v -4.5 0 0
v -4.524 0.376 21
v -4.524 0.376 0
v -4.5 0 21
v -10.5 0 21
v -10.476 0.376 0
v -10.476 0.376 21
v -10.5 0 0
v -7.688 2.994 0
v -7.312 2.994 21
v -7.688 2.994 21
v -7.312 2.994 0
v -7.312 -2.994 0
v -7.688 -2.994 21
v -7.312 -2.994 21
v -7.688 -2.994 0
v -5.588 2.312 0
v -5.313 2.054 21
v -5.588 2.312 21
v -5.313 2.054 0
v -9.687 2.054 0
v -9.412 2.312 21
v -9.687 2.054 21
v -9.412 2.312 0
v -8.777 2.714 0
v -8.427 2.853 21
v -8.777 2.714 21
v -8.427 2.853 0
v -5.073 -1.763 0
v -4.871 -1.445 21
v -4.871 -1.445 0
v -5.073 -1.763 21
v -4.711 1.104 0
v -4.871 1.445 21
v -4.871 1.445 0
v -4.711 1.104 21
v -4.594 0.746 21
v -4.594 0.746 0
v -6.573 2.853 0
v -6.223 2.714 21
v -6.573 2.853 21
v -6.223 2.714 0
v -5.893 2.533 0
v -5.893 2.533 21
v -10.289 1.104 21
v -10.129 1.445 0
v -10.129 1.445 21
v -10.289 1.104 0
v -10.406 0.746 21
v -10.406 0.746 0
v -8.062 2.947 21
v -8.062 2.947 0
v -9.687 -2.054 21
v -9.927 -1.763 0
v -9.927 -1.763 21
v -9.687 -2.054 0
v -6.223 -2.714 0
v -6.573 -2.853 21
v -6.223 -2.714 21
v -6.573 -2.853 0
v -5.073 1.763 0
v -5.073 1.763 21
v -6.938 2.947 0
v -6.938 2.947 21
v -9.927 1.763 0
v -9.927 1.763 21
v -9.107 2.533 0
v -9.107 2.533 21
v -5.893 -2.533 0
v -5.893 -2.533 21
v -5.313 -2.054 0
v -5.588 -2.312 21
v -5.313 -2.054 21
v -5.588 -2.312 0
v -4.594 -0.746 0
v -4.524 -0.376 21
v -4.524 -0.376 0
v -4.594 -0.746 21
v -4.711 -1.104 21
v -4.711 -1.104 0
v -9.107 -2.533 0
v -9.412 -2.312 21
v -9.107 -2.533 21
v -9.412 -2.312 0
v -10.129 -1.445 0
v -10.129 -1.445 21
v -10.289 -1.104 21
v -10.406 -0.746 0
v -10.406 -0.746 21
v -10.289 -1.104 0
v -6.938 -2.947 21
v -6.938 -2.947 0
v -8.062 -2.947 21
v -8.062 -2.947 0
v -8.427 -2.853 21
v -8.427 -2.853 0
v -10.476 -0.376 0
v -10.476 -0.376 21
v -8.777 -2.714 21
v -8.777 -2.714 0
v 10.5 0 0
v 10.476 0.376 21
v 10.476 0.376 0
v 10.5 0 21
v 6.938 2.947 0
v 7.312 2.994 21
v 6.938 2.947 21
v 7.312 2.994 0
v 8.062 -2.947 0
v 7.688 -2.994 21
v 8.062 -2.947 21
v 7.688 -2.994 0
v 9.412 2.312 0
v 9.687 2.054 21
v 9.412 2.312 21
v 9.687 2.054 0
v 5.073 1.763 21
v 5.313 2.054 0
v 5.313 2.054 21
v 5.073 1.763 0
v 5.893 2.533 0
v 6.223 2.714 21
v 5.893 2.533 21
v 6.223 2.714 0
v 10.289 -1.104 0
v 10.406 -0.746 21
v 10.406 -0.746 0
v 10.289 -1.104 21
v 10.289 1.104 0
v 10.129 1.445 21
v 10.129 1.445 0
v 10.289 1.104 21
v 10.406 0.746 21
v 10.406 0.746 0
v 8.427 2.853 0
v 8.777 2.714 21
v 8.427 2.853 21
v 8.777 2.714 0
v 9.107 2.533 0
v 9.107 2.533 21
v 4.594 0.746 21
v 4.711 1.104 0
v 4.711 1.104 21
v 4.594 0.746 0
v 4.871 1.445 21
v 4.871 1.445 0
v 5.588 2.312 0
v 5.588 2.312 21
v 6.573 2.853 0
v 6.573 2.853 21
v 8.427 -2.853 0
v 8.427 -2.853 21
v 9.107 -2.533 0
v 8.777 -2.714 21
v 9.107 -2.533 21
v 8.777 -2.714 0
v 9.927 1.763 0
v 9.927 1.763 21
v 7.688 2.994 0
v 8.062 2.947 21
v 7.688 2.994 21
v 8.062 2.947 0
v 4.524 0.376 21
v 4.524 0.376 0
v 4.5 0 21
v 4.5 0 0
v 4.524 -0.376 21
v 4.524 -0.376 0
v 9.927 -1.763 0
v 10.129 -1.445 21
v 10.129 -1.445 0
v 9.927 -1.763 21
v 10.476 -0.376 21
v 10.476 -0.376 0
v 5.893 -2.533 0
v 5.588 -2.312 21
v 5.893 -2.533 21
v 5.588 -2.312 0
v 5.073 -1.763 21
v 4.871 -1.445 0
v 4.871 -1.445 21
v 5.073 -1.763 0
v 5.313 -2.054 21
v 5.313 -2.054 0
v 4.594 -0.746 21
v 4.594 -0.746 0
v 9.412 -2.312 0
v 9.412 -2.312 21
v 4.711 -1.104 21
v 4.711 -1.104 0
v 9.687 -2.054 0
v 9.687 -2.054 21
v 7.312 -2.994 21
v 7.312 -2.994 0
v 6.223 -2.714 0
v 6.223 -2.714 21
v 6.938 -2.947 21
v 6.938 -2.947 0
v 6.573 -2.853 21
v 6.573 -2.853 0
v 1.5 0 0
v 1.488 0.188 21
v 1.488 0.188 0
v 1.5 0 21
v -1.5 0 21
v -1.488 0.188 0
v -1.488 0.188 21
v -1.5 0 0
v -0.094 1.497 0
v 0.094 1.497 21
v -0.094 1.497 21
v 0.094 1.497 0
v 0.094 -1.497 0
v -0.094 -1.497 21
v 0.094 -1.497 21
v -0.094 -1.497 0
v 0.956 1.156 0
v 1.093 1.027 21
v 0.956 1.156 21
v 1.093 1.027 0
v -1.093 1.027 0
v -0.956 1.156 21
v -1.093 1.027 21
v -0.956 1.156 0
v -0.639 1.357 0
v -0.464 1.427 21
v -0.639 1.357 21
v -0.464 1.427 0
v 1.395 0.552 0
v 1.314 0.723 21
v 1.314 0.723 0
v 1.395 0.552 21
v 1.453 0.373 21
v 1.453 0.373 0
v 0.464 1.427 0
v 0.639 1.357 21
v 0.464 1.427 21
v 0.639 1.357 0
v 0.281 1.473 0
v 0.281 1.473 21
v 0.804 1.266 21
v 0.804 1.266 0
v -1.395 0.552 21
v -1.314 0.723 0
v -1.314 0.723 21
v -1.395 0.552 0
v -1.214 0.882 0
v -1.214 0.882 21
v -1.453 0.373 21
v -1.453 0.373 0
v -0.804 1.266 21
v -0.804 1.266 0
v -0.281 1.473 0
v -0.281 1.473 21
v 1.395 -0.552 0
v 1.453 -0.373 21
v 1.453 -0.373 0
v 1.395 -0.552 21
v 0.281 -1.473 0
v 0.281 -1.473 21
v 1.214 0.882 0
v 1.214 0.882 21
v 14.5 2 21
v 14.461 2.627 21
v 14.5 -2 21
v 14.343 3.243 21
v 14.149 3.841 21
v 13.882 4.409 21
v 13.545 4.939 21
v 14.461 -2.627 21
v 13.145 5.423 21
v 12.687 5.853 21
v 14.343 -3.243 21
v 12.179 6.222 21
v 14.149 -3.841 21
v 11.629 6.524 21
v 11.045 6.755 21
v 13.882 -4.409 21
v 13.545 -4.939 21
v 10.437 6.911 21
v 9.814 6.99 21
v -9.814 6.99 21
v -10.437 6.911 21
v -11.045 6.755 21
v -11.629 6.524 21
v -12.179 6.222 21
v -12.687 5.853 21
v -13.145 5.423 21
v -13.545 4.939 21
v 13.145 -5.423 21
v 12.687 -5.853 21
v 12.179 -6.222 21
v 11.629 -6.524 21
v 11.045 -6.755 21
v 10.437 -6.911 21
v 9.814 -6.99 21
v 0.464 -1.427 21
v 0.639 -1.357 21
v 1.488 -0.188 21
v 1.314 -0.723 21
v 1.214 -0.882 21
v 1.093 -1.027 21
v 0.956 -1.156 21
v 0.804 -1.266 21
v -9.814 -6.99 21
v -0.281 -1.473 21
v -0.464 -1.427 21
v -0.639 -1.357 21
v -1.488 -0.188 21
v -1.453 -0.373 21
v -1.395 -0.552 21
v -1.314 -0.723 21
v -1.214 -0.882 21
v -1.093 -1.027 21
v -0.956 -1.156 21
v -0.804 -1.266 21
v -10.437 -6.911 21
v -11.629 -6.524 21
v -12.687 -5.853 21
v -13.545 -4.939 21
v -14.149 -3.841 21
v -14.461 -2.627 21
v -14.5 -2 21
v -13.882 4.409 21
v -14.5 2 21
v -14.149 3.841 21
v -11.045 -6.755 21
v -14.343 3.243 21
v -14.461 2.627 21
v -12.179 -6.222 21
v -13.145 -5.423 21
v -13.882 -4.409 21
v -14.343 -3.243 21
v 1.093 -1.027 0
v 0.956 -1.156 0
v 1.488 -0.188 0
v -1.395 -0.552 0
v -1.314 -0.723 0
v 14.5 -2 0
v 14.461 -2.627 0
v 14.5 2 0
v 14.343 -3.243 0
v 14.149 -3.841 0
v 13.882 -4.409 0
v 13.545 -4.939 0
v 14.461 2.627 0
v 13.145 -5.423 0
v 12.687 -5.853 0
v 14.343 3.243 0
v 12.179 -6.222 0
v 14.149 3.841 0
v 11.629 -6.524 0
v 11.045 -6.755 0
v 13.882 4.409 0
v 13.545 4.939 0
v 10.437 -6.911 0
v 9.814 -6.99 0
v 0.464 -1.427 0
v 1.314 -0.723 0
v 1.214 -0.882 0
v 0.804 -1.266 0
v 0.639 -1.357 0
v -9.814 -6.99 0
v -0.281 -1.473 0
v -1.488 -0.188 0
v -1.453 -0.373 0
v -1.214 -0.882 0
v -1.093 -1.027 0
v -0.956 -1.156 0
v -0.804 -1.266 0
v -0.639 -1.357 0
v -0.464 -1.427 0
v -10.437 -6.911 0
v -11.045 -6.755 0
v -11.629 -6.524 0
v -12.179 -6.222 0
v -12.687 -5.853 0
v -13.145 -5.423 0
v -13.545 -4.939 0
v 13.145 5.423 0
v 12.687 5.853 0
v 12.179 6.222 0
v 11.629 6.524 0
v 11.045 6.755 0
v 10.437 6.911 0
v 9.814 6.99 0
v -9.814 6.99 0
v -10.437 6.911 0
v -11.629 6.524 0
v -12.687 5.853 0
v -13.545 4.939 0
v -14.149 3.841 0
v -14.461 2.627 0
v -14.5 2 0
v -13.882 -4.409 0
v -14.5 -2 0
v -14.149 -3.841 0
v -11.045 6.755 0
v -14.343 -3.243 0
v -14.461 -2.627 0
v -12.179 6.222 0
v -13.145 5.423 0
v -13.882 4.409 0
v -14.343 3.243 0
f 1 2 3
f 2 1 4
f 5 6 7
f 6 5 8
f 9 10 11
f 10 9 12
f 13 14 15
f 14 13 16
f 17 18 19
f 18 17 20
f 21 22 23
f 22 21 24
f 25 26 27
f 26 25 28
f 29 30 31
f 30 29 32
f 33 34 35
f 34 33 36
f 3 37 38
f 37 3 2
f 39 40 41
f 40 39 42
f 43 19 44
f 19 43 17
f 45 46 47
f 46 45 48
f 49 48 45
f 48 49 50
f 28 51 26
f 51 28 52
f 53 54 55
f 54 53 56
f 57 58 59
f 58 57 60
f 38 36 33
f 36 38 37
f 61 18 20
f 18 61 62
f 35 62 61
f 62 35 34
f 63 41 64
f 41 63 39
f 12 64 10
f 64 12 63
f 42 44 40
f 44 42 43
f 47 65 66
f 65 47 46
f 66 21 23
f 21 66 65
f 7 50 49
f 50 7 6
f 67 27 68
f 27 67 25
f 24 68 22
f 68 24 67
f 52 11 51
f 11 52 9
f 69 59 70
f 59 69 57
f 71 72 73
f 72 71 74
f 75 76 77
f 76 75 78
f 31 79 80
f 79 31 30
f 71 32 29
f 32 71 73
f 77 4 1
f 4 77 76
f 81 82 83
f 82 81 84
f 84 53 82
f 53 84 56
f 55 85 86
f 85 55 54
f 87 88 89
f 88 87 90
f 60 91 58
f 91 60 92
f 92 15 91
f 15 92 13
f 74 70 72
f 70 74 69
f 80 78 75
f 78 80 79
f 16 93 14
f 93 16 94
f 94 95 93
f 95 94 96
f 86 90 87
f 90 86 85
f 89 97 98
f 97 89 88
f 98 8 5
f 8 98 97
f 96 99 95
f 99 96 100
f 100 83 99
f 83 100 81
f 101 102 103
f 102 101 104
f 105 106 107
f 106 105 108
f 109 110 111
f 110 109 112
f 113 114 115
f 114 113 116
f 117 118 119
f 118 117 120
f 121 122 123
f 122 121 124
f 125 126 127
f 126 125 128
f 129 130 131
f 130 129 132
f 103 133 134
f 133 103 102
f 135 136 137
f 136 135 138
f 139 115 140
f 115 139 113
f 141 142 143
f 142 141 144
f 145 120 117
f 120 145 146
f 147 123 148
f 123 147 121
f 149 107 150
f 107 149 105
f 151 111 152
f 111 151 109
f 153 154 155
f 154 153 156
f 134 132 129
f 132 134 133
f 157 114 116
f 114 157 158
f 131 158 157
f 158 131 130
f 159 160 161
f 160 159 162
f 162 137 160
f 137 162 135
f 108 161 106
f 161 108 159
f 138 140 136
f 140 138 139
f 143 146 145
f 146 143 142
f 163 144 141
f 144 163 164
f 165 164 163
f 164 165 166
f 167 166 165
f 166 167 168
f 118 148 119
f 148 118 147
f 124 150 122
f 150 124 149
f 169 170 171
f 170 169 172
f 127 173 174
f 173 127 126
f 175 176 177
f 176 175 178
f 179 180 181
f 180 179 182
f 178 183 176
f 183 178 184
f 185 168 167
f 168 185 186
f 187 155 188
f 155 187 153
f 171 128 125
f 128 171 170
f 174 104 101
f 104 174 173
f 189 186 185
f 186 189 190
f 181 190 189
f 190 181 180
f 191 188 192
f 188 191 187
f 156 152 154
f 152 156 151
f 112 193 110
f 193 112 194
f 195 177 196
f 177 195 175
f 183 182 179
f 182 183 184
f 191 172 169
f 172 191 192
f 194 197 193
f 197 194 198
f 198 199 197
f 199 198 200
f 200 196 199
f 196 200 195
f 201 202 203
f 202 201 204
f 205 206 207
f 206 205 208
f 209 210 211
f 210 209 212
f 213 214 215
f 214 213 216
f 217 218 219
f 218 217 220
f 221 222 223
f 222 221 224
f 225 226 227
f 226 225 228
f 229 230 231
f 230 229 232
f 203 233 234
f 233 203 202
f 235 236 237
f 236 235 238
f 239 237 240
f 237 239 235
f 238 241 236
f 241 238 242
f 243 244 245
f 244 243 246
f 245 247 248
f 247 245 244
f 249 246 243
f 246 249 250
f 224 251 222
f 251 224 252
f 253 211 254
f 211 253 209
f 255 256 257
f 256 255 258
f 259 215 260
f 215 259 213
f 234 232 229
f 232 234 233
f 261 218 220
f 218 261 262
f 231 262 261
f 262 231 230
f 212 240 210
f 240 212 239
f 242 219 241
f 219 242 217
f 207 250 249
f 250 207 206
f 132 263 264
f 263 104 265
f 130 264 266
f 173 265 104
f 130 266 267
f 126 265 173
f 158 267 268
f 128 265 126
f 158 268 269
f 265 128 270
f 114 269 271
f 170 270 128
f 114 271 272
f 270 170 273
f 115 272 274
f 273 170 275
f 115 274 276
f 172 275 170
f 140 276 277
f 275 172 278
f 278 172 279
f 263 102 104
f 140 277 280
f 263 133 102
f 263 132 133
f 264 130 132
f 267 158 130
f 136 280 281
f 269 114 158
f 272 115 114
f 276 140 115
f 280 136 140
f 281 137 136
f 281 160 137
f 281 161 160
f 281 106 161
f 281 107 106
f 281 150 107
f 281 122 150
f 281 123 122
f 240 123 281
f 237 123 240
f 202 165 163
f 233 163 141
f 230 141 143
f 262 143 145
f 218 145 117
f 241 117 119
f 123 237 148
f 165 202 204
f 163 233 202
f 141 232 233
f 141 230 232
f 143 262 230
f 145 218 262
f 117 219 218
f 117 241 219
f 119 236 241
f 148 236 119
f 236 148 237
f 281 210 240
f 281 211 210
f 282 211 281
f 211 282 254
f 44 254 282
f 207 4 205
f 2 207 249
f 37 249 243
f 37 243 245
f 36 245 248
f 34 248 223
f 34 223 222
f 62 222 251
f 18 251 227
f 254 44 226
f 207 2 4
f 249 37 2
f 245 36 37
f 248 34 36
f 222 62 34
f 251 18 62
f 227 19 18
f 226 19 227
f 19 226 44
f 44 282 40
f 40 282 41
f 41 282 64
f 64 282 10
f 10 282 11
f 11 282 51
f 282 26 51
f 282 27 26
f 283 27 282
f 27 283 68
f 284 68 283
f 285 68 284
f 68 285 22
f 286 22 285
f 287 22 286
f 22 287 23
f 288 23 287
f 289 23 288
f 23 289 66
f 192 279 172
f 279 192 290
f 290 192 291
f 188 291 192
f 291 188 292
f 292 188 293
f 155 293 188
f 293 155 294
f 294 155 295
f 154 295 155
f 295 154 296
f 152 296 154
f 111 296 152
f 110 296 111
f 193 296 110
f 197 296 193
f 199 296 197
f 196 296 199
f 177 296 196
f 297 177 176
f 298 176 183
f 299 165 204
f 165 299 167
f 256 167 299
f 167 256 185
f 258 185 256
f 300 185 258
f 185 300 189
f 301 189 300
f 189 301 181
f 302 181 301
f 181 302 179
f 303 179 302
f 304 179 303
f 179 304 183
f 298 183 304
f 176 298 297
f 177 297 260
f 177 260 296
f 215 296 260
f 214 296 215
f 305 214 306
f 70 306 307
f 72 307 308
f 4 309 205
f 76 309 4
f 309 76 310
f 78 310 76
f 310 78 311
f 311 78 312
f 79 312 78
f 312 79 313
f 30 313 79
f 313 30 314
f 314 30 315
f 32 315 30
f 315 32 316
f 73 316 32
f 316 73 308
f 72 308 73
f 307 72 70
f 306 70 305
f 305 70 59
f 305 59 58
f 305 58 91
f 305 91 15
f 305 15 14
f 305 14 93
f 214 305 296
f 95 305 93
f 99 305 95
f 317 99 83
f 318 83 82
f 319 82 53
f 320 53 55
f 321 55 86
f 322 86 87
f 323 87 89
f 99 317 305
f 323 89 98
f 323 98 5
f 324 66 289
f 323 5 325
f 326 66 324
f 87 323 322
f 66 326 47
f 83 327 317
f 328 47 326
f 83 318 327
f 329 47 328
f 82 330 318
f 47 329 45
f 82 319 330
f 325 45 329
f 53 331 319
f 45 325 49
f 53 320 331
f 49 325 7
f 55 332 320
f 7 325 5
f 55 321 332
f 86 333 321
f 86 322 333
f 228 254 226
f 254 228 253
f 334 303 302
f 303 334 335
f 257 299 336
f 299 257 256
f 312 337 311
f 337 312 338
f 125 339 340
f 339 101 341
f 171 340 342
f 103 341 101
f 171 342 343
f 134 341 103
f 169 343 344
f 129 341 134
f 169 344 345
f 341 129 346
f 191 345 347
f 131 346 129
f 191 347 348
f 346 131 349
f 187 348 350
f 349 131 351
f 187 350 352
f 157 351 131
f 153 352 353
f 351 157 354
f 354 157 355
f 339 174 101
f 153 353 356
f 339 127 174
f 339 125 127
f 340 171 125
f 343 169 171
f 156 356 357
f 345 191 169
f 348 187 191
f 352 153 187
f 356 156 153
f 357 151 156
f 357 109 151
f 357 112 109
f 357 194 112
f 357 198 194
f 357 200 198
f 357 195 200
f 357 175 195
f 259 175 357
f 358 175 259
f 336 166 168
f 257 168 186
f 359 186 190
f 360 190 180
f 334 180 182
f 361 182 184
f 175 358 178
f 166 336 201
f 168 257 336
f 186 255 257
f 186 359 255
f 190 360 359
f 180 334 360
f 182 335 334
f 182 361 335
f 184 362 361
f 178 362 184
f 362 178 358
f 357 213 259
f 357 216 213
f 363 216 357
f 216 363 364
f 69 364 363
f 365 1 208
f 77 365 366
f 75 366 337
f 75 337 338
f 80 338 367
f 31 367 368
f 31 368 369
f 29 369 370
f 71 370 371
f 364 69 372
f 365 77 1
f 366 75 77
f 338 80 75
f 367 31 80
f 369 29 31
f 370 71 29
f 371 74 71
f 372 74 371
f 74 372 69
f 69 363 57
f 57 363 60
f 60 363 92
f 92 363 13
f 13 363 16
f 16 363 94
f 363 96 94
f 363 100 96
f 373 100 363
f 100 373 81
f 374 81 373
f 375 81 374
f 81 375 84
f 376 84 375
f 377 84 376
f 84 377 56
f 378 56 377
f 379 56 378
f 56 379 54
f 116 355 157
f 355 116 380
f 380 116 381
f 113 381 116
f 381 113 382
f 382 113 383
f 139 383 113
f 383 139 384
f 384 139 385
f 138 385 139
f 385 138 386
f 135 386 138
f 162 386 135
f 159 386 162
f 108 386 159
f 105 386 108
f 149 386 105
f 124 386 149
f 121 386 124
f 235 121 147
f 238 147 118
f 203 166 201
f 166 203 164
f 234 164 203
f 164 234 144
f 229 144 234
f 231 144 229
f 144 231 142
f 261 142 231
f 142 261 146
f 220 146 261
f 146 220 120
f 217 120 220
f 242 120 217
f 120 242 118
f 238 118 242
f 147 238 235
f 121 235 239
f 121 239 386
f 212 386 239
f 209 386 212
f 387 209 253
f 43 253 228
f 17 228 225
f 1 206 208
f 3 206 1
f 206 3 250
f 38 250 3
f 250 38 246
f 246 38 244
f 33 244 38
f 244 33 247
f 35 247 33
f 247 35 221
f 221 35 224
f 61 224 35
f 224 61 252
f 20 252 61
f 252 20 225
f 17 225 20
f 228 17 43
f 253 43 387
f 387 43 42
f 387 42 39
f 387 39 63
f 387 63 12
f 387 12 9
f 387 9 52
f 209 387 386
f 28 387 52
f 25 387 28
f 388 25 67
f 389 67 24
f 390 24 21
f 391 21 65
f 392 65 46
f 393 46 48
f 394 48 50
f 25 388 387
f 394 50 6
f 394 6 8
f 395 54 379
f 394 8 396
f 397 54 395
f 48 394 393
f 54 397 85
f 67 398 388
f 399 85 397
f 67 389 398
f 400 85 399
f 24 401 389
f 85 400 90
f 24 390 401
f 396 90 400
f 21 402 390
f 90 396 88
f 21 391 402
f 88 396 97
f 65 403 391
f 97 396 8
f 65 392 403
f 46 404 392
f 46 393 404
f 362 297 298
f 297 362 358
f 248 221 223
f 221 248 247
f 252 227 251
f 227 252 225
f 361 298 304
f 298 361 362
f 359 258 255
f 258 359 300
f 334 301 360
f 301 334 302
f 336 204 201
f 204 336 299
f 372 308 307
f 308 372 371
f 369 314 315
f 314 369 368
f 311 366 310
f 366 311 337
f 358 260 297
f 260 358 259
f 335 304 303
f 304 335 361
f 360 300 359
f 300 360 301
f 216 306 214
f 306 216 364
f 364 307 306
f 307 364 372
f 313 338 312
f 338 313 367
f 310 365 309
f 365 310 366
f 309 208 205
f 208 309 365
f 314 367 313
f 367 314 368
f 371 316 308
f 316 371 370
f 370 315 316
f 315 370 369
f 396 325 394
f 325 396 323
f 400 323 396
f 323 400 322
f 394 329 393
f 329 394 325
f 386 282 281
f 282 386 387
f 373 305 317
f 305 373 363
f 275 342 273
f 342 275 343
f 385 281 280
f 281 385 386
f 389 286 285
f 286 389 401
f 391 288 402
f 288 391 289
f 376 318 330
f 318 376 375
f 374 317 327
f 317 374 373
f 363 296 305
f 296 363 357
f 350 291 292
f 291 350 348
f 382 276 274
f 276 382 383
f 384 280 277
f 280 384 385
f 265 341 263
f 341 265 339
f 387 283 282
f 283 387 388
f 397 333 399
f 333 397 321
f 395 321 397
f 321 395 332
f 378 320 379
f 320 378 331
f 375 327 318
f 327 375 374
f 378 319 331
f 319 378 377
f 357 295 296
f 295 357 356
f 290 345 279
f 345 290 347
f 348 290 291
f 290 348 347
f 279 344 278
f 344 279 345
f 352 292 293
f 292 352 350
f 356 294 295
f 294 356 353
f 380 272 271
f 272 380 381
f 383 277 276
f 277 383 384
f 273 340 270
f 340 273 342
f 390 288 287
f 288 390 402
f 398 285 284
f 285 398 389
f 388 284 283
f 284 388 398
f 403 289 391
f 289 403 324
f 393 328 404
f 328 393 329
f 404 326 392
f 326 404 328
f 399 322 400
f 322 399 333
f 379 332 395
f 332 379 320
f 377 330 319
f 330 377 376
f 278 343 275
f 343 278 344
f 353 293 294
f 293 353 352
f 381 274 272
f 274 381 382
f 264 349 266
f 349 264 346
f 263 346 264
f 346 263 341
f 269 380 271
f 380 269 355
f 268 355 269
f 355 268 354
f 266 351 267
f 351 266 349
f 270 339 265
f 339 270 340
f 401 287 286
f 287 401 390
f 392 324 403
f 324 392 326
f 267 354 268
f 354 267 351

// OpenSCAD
$fn = 50;


difference() {
	union() {
		hull() {
			translate(v = [-9.5000000000, 2.0000000000, 0]) {
				cylinder(h = 21, r = 5);
			}
			translate(v = [9.5000000000, 2.0000000000, 0]) {
				cylinder(h = 21, r = 5);
			}
			translate(v = [-9.5000000000, -2.0000000000, 0]) {
				cylinder(h = 21, r = 5);
			}
			translate(v = [9.5000000000, -2.0000000000, 0]) {
				cylinder(h = 21, r = 5);
			}
		}
	}
	union() {
		translate(v = [-7.5000000000, 0.0000000000, -100.0000000000]) {
			cylinder(h = 200, r = 3.0000000000);
		}
		translate(v = [7.5000000000, 0.0000000000, -100.0000000000]) {
			cylinder(h = 200, r = 3.0000000000);
		}
		translate(v = [-7.5000000000, 0.0000000000, 0]) {
			cylinder(h = 21, r = 1.5000000000);
		}
		cylinder(h = 21, r = 1.5000000000);
		translate(v = [7.5000000000, 0.0000000000, 0]) {
			cylinder(h = 21, r = 1.5000000000);
		}
		translate(v = [-7.5000000000, 0.0000000000, 0]) {
			cylinder(h = 21, r = 1.5000000000);
		}
		cylinder(h = 21, r = 1.5000000000);
		translate(v = [7.5000000000, 0.0000000000, 0]) {
			cylinder(h = 21, r = 1.5000000000);
		}
		translate(v = [-7.5000000000, 0.0000000000, 0]) {
			cylinder(h = 21, r = 1.5000000000);
		}
		cylinder(h = 21, r = 1.5000000000);
		translate(v = [7.5000000000, 0.0000000000, 0]) {
			cylinder(h = 21, r = 1.5000000000);
		}
	}
}
